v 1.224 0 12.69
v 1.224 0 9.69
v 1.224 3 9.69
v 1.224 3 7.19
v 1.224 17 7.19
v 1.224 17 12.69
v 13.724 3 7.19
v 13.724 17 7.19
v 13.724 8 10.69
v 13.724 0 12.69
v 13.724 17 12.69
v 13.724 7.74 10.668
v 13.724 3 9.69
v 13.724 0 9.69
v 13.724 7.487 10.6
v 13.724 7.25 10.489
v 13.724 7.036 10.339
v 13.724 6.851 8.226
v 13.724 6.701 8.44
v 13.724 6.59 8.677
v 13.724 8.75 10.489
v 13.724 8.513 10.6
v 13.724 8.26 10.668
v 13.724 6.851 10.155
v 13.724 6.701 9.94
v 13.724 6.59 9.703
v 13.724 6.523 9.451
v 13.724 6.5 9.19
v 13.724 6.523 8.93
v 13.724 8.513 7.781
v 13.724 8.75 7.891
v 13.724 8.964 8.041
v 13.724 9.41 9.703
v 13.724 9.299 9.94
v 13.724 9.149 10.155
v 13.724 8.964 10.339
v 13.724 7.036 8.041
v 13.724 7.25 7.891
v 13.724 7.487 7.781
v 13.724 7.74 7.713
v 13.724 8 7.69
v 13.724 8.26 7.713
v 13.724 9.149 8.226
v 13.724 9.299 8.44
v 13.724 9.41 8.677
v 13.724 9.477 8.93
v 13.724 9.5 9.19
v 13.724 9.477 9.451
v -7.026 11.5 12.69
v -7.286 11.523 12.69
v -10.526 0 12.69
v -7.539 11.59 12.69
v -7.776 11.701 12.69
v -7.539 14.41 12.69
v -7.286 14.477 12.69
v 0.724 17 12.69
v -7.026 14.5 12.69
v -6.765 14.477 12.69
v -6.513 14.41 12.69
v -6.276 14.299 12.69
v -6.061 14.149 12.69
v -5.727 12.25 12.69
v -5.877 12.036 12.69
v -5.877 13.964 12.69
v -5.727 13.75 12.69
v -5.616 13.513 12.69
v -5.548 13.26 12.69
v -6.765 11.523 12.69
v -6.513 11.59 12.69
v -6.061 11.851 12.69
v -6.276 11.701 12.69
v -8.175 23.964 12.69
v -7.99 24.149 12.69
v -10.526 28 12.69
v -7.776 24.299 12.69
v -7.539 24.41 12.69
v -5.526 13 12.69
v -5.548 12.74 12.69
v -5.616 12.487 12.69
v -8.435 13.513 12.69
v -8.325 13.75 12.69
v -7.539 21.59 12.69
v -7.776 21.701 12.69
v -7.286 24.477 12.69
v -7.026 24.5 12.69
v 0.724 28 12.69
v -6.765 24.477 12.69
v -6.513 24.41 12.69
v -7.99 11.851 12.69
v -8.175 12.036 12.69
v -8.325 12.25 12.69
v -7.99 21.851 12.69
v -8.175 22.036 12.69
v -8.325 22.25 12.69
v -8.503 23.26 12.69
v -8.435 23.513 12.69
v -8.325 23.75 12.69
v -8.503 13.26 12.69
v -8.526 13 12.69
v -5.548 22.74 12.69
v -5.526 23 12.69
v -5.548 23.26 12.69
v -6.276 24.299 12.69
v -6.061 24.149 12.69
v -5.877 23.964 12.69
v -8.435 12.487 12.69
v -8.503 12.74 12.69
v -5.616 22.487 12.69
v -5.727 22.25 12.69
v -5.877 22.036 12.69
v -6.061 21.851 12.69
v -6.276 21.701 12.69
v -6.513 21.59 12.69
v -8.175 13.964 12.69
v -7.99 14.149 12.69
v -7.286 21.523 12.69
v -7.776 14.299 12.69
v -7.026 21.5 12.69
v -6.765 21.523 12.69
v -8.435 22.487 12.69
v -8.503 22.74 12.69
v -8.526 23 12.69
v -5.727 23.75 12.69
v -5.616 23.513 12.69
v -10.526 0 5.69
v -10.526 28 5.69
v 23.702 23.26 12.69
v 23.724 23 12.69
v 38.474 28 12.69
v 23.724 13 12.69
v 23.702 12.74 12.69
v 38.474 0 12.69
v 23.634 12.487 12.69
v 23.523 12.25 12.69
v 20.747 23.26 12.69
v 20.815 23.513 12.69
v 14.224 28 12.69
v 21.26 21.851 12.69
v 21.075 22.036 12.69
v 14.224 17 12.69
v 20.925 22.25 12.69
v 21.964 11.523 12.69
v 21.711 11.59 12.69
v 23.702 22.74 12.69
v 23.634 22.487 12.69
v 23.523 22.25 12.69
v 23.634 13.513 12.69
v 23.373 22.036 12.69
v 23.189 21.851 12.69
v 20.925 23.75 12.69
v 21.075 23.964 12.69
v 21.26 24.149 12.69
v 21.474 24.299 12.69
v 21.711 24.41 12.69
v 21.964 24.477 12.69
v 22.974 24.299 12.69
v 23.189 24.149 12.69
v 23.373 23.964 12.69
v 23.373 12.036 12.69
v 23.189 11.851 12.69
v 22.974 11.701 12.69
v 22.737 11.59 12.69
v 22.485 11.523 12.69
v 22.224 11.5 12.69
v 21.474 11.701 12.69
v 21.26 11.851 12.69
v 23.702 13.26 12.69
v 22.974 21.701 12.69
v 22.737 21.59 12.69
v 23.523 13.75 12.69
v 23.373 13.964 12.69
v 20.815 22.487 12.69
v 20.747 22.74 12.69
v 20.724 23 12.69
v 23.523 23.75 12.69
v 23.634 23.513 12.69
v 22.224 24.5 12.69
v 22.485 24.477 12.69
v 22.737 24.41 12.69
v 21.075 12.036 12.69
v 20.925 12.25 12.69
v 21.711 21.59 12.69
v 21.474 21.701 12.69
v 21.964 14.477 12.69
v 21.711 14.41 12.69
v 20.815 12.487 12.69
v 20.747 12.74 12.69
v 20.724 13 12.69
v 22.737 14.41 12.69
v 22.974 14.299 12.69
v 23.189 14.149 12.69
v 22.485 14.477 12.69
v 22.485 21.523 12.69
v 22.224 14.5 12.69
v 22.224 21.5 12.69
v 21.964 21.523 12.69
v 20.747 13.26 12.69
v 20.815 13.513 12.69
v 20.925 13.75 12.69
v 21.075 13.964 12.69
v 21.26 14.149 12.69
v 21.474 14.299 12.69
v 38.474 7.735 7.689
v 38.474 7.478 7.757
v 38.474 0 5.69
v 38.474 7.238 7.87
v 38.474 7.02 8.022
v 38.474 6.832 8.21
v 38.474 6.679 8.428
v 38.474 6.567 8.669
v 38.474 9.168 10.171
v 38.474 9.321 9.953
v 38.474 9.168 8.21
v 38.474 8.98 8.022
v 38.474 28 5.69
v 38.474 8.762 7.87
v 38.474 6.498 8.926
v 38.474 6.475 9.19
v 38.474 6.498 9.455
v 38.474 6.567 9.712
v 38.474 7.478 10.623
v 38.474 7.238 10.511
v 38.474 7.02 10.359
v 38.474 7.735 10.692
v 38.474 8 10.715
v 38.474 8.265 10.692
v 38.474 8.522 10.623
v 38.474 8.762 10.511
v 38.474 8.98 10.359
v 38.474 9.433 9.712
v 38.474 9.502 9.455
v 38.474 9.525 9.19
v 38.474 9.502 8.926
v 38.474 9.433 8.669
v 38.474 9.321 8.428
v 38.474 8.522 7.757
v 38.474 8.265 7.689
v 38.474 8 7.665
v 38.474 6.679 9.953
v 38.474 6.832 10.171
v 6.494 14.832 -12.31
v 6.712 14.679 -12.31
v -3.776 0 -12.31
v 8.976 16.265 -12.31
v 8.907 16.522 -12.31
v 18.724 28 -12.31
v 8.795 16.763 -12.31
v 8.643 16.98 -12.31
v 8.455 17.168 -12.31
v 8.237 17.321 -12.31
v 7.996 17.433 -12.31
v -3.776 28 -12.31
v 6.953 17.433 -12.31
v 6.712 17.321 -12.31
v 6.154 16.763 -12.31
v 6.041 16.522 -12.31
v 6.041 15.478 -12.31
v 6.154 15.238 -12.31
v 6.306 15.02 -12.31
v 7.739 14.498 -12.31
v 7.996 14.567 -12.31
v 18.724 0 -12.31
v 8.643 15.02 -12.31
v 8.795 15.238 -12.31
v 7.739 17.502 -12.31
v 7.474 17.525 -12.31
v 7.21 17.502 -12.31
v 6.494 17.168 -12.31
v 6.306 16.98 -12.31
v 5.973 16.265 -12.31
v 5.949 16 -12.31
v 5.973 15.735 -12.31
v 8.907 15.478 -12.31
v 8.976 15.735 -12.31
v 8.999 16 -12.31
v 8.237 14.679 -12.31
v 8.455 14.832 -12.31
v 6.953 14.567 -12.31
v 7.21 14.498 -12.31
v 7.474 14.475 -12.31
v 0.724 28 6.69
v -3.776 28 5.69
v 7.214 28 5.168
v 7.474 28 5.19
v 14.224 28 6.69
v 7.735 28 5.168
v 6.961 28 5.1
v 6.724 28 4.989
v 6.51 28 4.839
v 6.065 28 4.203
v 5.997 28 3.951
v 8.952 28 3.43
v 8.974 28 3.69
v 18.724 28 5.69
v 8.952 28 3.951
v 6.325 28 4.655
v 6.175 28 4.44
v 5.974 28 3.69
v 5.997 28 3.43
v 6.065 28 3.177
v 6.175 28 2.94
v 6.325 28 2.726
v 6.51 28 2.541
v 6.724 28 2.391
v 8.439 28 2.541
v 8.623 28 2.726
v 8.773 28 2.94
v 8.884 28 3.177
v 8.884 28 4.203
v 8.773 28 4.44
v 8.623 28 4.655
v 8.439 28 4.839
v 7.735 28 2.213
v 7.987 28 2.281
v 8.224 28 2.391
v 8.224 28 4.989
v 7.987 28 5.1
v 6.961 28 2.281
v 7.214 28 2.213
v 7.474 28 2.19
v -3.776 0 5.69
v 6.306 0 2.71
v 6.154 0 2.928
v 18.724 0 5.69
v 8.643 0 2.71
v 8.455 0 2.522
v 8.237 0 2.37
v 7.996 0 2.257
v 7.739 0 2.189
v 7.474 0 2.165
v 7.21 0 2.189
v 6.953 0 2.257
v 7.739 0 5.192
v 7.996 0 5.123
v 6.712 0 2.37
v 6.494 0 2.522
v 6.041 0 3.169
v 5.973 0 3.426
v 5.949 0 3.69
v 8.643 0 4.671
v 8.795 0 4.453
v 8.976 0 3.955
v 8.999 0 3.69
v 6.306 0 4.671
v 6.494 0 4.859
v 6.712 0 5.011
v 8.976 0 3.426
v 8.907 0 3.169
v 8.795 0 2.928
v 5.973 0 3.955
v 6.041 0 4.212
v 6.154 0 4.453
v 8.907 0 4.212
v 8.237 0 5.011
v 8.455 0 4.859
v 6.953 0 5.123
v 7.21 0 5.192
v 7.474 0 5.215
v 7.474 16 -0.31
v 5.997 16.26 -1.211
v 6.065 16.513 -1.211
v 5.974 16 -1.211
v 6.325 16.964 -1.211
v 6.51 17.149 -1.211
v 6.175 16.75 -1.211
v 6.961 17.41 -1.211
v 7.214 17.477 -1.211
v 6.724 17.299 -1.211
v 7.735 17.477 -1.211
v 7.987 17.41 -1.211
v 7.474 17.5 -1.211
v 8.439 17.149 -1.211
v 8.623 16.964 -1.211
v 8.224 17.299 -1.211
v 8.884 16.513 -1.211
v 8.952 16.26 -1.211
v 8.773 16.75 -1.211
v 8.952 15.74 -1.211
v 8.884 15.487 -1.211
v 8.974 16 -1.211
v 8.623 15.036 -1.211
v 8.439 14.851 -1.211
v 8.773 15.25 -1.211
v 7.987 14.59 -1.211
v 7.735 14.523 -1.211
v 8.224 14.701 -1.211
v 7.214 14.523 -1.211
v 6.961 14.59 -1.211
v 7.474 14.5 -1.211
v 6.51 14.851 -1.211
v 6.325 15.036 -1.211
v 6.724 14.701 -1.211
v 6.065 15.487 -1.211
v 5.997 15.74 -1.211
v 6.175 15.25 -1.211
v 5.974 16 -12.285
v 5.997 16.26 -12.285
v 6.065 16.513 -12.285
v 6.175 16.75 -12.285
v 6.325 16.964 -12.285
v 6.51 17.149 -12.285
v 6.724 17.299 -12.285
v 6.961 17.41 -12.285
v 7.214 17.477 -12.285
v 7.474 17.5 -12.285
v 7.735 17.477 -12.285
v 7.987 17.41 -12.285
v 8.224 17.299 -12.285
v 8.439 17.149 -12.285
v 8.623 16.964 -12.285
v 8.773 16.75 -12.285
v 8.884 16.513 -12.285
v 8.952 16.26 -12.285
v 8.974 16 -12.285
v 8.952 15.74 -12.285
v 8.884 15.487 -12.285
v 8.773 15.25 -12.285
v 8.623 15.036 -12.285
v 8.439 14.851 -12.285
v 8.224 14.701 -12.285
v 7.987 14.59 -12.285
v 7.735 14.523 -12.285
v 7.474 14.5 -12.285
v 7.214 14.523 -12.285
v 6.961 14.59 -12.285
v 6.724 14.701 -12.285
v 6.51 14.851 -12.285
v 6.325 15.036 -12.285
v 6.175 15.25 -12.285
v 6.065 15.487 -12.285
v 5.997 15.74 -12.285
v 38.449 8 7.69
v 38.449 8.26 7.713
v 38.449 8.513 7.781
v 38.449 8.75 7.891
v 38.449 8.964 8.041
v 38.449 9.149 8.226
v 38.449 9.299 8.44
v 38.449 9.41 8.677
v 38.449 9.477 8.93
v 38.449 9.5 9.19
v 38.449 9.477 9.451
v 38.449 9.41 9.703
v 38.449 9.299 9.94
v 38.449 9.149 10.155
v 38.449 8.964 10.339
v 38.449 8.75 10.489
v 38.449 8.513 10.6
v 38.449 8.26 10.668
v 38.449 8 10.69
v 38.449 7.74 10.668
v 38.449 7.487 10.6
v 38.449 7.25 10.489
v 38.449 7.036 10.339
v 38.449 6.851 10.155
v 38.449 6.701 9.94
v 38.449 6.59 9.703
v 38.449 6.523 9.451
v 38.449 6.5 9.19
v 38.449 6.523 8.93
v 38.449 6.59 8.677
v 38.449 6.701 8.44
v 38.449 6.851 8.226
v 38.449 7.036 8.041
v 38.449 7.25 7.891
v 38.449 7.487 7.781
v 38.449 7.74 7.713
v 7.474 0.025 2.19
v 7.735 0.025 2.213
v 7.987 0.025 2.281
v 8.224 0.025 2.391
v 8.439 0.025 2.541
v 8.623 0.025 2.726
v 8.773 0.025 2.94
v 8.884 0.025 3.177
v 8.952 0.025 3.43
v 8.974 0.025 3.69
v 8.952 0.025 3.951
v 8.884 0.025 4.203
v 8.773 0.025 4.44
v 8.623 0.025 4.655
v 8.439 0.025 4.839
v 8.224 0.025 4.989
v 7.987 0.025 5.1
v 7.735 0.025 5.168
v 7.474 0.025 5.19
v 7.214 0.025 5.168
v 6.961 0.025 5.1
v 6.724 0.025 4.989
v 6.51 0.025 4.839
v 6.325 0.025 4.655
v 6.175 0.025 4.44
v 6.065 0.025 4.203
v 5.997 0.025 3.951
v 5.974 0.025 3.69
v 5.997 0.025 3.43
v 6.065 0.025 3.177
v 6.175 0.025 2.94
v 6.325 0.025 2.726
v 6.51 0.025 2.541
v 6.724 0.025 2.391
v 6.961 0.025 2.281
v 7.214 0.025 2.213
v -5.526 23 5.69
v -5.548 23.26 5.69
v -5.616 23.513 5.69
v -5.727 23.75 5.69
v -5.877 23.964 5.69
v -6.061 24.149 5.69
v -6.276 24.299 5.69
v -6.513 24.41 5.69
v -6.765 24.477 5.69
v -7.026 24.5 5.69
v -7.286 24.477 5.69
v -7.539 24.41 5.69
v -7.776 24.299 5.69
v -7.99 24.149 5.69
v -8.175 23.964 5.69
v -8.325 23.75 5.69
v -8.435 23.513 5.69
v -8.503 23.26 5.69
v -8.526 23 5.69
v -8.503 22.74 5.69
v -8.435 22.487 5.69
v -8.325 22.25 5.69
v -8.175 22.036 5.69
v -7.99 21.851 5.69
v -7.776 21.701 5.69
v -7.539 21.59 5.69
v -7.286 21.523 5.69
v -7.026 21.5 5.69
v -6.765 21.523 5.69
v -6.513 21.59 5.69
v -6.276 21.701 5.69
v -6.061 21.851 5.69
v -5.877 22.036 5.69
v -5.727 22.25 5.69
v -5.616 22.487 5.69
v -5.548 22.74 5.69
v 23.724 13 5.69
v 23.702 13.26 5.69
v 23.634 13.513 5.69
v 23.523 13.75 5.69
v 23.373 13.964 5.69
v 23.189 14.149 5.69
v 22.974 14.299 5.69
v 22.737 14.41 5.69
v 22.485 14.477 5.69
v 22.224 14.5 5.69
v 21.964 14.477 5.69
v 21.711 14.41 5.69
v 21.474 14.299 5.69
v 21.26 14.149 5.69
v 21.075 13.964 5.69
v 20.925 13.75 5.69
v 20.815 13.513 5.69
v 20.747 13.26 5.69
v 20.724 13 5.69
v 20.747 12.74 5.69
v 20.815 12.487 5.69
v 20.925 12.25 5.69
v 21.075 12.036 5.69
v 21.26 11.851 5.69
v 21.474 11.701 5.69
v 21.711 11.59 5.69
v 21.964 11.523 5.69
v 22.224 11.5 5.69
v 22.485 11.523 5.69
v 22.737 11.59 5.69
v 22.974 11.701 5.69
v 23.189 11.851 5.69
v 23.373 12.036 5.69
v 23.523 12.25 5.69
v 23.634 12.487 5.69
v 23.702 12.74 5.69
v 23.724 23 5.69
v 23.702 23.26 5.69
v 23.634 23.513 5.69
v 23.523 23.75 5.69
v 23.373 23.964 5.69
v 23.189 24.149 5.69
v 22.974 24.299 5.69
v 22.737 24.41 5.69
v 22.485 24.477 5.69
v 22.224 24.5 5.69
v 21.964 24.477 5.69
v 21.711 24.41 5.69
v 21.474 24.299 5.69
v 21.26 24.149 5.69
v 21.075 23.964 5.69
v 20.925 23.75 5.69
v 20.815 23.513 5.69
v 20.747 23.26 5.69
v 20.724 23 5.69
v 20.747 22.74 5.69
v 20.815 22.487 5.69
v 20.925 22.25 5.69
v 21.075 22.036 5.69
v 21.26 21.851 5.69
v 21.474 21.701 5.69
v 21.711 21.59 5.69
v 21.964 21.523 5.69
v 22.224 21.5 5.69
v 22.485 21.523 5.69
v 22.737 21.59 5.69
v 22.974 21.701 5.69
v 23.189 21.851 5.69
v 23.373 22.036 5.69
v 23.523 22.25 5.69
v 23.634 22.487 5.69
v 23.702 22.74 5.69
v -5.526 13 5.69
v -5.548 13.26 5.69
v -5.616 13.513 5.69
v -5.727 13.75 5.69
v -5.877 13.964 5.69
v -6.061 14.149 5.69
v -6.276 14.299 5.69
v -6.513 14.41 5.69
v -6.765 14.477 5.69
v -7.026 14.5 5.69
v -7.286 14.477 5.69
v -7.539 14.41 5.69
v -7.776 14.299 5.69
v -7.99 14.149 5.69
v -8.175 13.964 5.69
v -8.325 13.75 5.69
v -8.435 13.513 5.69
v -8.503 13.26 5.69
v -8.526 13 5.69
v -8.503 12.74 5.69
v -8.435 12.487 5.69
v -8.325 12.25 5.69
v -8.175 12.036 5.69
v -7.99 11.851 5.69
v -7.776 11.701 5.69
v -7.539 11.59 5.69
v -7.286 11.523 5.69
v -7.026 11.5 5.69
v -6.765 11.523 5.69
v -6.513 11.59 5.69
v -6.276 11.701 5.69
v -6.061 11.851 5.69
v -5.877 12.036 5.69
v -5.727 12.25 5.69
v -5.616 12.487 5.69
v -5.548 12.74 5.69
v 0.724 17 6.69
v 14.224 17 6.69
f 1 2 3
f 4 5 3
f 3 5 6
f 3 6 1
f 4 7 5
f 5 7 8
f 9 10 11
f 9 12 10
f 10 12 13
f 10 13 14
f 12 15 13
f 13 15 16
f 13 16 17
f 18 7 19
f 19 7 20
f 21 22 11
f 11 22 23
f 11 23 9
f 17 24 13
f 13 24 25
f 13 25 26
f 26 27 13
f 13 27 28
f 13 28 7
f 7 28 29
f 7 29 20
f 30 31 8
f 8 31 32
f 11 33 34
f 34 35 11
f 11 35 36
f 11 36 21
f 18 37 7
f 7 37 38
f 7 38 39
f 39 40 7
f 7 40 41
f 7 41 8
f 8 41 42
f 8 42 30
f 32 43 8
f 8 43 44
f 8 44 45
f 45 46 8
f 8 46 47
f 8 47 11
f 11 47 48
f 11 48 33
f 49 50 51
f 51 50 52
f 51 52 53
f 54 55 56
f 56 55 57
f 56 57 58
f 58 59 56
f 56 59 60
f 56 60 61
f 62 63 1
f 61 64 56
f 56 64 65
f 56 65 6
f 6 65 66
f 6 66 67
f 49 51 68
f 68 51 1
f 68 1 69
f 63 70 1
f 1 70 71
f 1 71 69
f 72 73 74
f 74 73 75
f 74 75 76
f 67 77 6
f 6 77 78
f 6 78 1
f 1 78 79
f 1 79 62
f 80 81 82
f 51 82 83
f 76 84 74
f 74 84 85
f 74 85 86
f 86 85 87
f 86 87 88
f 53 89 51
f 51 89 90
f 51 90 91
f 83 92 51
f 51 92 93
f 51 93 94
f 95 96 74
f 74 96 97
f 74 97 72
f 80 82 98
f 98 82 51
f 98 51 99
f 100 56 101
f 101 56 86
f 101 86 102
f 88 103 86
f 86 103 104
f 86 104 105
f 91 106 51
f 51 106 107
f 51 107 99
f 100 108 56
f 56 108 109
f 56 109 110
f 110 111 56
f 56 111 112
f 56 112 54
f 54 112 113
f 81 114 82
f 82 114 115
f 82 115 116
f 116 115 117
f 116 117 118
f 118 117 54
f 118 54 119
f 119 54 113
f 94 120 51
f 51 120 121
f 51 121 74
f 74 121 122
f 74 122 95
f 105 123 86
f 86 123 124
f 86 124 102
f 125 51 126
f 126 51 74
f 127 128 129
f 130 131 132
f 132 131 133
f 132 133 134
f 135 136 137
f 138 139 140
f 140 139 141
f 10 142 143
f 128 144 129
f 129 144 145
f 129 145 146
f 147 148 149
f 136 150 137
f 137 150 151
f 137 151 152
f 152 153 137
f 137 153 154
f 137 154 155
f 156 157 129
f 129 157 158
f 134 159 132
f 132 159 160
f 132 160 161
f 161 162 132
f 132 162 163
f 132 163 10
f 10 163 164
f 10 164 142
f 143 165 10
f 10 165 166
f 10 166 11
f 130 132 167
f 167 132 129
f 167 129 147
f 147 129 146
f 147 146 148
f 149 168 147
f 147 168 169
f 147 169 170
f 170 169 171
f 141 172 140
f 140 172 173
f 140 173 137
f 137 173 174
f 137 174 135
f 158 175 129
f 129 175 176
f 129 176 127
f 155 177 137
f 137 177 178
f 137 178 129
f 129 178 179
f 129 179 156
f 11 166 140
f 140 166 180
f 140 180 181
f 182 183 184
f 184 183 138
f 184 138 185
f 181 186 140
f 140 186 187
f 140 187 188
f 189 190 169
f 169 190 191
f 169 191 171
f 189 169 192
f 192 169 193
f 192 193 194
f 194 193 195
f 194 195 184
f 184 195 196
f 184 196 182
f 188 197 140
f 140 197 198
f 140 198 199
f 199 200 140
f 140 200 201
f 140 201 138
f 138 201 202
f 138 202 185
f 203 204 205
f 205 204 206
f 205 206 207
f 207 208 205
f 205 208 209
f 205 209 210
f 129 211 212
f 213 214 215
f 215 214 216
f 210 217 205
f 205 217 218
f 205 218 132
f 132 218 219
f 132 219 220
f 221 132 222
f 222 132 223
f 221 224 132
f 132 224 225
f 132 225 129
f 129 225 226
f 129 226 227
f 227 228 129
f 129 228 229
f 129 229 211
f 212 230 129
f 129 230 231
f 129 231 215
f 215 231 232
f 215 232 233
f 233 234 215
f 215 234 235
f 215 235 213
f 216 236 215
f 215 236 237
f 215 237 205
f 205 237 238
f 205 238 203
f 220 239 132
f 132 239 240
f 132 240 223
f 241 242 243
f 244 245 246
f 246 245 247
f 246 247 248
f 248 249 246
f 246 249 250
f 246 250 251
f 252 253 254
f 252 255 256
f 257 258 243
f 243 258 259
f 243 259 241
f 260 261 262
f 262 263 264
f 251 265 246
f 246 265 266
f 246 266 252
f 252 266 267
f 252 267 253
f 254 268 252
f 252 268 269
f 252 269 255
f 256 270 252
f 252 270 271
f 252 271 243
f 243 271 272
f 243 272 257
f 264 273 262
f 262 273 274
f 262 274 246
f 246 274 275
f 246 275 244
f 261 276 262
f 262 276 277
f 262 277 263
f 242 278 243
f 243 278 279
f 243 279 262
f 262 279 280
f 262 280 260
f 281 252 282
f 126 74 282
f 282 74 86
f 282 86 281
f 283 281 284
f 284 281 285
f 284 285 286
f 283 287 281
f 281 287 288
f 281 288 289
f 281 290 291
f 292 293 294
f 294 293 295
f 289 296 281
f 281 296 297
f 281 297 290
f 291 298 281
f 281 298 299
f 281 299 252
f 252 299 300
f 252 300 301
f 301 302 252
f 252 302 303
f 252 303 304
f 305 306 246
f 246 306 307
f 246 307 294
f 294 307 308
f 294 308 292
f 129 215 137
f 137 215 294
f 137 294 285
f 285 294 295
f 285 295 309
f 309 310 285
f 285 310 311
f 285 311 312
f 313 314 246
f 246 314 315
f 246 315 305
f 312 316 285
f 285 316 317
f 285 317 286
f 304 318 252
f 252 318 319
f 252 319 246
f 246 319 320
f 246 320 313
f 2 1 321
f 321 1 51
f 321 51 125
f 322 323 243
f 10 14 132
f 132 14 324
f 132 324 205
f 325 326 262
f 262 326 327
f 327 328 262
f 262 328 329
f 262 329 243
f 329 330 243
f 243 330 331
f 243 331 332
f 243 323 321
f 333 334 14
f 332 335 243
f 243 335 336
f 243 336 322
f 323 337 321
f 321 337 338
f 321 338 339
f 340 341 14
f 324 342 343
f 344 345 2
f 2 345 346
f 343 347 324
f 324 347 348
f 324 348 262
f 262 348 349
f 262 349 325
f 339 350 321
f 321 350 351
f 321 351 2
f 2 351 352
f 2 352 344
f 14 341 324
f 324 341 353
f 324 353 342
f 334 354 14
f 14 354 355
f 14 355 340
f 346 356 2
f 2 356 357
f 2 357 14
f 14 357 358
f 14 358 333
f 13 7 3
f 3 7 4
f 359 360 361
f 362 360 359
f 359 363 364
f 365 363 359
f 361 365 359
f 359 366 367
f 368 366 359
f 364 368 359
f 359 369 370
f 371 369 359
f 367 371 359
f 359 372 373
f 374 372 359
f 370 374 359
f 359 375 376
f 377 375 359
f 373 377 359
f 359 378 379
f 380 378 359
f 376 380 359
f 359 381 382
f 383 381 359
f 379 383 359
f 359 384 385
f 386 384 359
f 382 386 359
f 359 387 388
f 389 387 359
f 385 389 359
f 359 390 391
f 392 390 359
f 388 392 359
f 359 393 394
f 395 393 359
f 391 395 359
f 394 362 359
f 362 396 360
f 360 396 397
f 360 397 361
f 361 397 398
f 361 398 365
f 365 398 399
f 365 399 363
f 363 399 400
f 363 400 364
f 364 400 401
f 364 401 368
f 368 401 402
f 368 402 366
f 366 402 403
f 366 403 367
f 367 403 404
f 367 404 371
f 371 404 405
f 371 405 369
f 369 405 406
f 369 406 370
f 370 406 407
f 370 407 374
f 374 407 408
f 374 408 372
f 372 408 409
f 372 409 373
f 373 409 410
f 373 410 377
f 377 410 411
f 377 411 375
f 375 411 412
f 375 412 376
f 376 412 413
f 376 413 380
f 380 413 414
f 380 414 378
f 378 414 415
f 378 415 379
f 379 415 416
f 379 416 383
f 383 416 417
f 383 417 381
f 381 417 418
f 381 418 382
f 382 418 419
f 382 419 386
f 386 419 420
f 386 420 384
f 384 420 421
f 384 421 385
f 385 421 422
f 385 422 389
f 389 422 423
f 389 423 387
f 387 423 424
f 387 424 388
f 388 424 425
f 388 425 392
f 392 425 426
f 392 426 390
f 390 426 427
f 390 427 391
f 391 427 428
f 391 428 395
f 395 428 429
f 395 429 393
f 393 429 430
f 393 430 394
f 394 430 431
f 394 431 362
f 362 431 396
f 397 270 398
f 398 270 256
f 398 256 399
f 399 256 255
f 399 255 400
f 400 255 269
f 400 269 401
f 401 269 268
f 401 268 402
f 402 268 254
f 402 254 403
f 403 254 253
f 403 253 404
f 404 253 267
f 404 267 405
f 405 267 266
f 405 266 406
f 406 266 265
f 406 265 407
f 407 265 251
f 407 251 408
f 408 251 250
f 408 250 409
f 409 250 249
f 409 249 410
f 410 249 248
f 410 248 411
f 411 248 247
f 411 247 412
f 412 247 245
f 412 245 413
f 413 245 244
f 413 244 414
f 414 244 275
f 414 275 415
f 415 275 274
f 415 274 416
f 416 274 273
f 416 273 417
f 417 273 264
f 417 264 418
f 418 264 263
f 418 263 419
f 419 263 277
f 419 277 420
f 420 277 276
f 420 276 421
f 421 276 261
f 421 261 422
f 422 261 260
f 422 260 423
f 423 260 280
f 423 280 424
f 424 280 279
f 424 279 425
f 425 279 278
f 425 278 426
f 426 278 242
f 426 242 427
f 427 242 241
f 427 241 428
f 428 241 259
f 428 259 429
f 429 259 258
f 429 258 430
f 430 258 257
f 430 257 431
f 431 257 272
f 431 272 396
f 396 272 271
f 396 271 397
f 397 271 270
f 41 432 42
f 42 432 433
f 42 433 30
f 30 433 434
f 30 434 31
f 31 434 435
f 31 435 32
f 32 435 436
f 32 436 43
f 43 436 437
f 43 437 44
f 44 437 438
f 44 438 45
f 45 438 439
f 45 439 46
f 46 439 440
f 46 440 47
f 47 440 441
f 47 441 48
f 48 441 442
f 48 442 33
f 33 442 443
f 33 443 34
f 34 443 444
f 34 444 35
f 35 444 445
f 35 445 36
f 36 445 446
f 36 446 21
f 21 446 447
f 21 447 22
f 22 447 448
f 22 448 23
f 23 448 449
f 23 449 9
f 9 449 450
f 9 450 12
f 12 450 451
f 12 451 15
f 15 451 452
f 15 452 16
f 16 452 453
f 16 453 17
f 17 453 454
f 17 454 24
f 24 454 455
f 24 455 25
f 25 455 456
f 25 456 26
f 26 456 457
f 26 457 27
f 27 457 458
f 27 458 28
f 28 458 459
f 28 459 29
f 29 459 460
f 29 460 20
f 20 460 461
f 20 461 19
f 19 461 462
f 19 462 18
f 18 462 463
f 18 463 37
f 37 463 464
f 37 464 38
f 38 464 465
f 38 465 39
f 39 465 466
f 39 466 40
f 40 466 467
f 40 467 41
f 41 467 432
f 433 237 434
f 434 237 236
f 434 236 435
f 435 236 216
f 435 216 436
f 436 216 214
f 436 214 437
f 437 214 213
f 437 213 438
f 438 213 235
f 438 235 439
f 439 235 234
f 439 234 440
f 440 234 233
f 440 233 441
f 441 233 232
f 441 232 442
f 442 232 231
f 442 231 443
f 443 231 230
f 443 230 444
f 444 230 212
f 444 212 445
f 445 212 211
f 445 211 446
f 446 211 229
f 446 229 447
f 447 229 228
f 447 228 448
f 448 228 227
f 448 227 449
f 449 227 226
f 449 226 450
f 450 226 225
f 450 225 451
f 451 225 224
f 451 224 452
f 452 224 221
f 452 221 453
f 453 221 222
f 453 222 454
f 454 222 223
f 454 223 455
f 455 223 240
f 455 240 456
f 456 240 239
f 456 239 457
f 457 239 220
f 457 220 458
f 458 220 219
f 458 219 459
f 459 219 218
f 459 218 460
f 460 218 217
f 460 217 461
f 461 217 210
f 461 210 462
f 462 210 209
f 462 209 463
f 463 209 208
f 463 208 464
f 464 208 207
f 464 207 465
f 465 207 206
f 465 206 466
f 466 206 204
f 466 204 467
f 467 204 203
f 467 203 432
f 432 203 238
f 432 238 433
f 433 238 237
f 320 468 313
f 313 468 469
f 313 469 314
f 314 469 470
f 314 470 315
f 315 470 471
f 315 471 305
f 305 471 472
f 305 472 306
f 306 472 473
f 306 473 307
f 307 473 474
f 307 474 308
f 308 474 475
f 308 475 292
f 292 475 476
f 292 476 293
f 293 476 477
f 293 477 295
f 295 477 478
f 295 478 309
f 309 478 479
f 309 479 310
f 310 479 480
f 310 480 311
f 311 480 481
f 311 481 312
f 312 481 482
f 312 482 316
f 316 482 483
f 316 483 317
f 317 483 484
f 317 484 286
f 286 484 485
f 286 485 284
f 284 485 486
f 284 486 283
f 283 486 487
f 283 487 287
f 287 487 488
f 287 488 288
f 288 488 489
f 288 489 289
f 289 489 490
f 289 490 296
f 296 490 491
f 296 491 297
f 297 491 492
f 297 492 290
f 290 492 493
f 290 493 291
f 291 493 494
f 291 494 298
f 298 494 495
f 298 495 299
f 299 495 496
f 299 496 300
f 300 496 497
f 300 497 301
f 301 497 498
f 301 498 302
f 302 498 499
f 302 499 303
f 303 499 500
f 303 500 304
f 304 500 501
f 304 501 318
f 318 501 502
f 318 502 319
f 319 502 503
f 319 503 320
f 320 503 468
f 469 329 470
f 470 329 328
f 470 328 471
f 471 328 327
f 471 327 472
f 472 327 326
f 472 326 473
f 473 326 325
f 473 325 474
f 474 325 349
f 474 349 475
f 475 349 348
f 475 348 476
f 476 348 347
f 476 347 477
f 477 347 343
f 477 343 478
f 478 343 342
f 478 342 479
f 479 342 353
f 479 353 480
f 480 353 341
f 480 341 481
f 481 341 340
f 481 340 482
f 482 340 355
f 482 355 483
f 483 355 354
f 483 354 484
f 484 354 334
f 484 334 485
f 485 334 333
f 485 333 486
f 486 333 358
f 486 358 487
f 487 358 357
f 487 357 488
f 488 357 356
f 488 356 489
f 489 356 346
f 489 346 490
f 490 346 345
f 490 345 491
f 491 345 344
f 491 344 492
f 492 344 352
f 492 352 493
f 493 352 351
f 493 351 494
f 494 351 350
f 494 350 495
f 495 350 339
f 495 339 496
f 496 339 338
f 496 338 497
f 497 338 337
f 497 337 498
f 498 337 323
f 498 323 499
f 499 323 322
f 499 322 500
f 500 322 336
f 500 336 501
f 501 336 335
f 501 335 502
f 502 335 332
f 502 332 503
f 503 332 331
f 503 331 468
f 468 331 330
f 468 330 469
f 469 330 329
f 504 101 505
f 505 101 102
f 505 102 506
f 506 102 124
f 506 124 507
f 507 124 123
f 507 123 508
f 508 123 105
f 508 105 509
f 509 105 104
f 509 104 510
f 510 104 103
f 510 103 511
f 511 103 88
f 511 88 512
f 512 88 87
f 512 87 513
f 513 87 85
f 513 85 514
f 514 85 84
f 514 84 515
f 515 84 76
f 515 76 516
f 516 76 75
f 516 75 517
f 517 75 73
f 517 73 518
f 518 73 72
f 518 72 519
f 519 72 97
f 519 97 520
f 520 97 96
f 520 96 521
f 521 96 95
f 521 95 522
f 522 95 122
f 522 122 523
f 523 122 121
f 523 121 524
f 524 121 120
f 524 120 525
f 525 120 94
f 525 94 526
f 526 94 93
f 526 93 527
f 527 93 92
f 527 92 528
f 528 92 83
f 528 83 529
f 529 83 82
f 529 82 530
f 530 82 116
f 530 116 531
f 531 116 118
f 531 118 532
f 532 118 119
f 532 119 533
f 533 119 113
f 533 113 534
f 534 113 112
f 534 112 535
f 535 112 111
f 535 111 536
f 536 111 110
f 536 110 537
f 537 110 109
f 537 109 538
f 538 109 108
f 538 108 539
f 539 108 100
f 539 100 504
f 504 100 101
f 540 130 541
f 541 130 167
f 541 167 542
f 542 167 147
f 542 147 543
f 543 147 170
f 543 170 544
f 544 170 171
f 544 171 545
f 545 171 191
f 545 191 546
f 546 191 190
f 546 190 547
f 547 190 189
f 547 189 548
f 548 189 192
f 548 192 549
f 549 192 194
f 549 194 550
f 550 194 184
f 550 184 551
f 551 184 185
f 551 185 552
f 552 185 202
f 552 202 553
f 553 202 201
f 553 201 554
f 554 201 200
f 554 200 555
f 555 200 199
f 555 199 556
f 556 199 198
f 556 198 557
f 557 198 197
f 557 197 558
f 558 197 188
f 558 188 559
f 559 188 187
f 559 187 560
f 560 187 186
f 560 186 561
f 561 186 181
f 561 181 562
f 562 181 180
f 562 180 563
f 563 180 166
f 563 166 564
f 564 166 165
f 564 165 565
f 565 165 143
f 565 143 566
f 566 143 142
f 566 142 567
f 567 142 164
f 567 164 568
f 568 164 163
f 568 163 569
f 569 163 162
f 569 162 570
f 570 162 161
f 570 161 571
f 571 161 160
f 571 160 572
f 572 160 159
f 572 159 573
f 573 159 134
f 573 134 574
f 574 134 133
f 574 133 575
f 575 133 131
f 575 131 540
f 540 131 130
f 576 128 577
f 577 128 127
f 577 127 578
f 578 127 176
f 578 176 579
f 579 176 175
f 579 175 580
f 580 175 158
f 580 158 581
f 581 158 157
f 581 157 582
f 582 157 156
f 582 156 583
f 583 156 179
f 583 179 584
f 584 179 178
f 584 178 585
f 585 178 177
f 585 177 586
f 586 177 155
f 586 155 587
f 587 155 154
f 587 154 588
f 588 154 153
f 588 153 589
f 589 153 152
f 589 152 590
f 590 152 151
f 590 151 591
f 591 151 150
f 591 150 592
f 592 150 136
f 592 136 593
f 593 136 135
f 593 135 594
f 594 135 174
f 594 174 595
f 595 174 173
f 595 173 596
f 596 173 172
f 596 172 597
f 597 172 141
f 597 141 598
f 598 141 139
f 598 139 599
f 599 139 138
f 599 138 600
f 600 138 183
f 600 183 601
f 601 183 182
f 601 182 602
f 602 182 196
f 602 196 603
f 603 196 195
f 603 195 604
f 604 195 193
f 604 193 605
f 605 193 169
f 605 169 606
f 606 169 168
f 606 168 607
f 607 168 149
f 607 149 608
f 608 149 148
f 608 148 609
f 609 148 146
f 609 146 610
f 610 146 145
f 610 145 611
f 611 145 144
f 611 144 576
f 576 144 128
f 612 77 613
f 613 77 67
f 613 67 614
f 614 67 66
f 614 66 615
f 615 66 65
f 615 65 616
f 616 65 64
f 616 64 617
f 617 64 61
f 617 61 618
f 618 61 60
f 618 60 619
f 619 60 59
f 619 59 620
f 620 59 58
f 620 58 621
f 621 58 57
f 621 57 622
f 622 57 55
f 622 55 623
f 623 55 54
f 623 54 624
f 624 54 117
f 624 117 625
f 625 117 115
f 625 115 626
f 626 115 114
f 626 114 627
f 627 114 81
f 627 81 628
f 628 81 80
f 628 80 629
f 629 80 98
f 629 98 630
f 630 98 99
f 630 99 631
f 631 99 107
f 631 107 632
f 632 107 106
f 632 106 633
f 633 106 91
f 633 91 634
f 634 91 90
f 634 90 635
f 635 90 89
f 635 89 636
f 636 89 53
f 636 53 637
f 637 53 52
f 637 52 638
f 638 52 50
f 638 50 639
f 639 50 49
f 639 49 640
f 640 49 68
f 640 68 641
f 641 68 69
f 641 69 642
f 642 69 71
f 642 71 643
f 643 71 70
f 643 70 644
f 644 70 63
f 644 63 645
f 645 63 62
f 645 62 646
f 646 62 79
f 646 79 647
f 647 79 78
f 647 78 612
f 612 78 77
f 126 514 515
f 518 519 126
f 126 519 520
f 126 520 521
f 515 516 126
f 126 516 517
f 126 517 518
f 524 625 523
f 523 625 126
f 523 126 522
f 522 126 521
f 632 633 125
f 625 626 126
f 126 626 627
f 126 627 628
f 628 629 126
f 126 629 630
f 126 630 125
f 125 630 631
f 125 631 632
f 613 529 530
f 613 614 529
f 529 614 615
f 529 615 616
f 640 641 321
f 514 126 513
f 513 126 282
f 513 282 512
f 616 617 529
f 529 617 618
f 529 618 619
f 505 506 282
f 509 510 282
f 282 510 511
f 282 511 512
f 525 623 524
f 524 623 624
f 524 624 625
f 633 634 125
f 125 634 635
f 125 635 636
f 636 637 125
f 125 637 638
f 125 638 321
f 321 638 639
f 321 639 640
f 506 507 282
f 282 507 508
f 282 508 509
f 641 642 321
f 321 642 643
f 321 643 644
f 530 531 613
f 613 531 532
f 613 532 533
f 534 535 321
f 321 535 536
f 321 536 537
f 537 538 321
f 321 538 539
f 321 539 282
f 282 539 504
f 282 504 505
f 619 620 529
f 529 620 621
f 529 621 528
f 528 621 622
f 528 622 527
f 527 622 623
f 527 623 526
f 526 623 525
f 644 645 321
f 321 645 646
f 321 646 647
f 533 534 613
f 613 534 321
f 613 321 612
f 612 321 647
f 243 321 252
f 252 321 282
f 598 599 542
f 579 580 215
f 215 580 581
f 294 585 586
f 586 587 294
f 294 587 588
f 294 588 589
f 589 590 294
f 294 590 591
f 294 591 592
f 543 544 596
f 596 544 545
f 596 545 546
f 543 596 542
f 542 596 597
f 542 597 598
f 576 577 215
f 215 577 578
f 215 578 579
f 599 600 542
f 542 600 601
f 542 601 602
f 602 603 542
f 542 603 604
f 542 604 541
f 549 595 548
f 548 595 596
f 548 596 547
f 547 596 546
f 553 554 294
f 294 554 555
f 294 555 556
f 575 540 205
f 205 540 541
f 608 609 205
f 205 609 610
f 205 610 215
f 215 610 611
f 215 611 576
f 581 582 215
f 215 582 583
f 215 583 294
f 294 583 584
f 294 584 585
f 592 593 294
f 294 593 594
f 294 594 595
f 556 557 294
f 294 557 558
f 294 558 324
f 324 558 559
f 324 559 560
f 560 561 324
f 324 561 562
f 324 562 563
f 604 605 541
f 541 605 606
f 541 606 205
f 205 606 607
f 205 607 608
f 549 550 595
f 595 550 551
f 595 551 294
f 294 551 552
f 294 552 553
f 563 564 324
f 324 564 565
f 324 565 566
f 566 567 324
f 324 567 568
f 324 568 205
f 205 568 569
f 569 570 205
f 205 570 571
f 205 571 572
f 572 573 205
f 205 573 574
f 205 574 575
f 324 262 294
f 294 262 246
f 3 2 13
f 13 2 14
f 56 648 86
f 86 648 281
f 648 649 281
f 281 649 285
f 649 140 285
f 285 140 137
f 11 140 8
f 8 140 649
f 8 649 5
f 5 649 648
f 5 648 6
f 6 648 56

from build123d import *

# Parameters (mm, degrees)
SKETCH1_W                       = 49
SKETCH1_H                       = 25
BOSS_EXTRUDE1_DEPTH             = 28
SKETCH2_W                       = 12.5
SKETCH2_H                       = 5.5
CUT_EXTRUDE1_DEPTH              = 25
F_3_0MM_DOWEL_HOLE1_D           = 3
F_3_0MM_DOWEL_HOLE1_DEPTH       = 11.098709071
F_3_0MM_DOWEL_HOLE1_CSINK_D     = 3.05
F_3_0MM_DOWEL_HOLE1_CSINK_ANGLE = 90
F_3_0MM_DOWEL_HOLE1_TIP         = 0.901290929
F_3_0MM_DOWEL_HOLE2_D           = 3
F_3_0MM_DOWEL_HOLE2_DEPTH       = 24.75
F_3_0MM_DOWEL_HOLE2_CSINK_D     = 3.05
F_3_0MM_DOWEL_HOLE2_CSINK_ANGLE = 90
F_3_0MM_DOWEL_HOLE3_D           = 3
F_3_0MM_DOWEL_HOLE3_CSINK_D     = 3.05
F_3_0MM_DOWEL_HOLE3_CSINK_ANGLE = 90
SKETCH13_R                      = 1.5
CUT_EXTRUDE2_DEPTH              = 12
SKETCH14_W                      = 6.75
SKETCH14_H                      = 18
SKETCH14_W_2                    = 19.75
CUT_EXTRUDE3_DEPTH              = 28
SKETCH15_W                      = 12.5
SKETCH15_H                      = 3
CUT_EXTRUDE4_DEPTH              = 10
CUT_EXTRUDE5_DEPTH              = 11


with BuildPart() as part:
    # Sketch1 → Boss-Extrude1 (new body)
    with BuildSketch(Plane(origin=(0, 0, 0), x_dir=(1, 0, 0), z_dir=(0, 1, 0))):
        with Locations((13.974428044, -0.190405904)):
            Rectangle(SKETCH1_W, SKETCH1_H)
    extrude(amount=BOSS_EXTRUDE1_DEPTH)

    # Sketch2 → Cut-Extrude1 (cut)
    with BuildSketch(Plane(origin=(0, 28, 0), x_dir=(1, 0, 0), z_dir=(0, 1, 0))):
        with Locations((7.474428044, -9.940405904)):
            Rectangle(SKETCH2_W, SKETCH2_H)
    extrude(amount=-CUT_EXTRUDE1_DEPTH, mode=Mode.SUBTRACT)

    # Ø3.0mm Dowel Hole1
    with Locations(Plane(origin=(0, 0, -12.309594096), x_dir=(-1, 0, 0), z_dir=(0, 0, -1))):
        with Locations((-7.474428044, 16)):
            CounterSinkHole(F_3_0MM_DOWEL_HOLE1_D / 2, F_3_0MM_DOWEL_HOLE1_CSINK_D / 2, depth=F_3_0MM_DOWEL_HOLE1_DEPTH, counter_sink_angle=F_3_0MM_DOWEL_HOLE1_CSINK_ANGLE)
            with Locations((0, 0, -(F_3_0MM_DOWEL_HOLE1_DEPTH + F_3_0MM_DOWEL_HOLE1_TIP / 2))):  # 118° drill point
                Cone(0, F_3_0MM_DOWEL_HOLE1_D / 2, F_3_0MM_DOWEL_HOLE1_TIP, mode=Mode.SUBTRACT)

    # Ø3.0mm Dowel Hole2
    with Locations(Plane(origin=(38.474428044, 0, 0), x_dir=(0, 0, -1), z_dir=(1, 0, 0))):
        with Locations((-9.190405904, 8)):
            CounterSinkHole(F_3_0MM_DOWEL_HOLE2_D / 2, F_3_0MM_DOWEL_HOLE2_CSINK_D / 2, depth=F_3_0MM_DOWEL_HOLE2_DEPTH, counter_sink_angle=F_3_0MM_DOWEL_HOLE2_CSINK_ANGLE)

    # Ø3.0mm Dowel Hole3 (through all)
    with Locations(Plane(origin=(0, 0, 0), x_dir=(-1, 0, 0), z_dir=(0, -1, 0))):
        with Locations((-7.474428044, -3.690405904)):
            CounterSinkHole(F_3_0MM_DOWEL_HOLE3_D / 2, F_3_0MM_DOWEL_HOLE3_CSINK_D / 2, counter_sink_angle=F_3_0MM_DOWEL_HOLE3_CSINK_ANGLE)

    # Sketch13 → Cut-Extrude2 (cut)
    with BuildSketch(Plane.XY.offset(12.690405904)):
        with Locations((-7.025571956, 23)):
            Circle(SKETCH13_R)
        with Locations((-7.025571956, 13)):
            Circle(SKETCH13_R)
        with Locations((22.224428044, 23)):
            Circle(SKETCH13_R)
        with Locations((22.224428044, 13)):
            Circle(SKETCH13_R)
    extrude(amount=-CUT_EXTRUDE2_DEPTH, mode=Mode.SUBTRACT)

    # Sketch14 → Cut-Extrude3 (cut)
    with BuildSketch(Plane(origin=(0, 28, 0), x_dir=(1, 0, 0), z_dir=(0, 1, 0))):
        with Locations((-7.150571956, 3.309594096)):
            Rectangle(SKETCH14_W, SKETCH14_H)
        with Locations((28.599428044, 3.309594096)):
            Rectangle(SKETCH14_W_2, SKETCH14_H)
    extrude(amount=-CUT_EXTRUDE3_DEPTH, mode=Mode.SUBTRACT)

    # Sketch15 → Cut-Extrude4 (cut)
    with BuildSketch(Plane(origin=(0, 3, 0), x_dir=(1, 0, 0), z_dir=(0, 1, 0))):
        with Locations((7.474428044, -11.190405904)):
            Rectangle(SKETCH15_W, SKETCH15_H)
    extrude(amount=-CUT_EXTRUDE4_DEPTH, mode=Mode.SUBTRACT)

    # Sketch16 → Cut-Extrude5 (cut)
    with BuildSketch(Plane(origin=(0, 28, 0), x_dir=(1, 0, 0), z_dir=(0, 1, 0))):
        Polygon((14.224428044, -12.690405904), (14.224428044, -6.690405904), (0.724428044, -6.690405904), (0.724428044, -12.690405904), (1.224428044, -12.690405904), (1.224428044, -7.190405904), (13.724428044, -7.190405904), (13.724428044, -12.690405904), align=None)
    extrude(amount=-CUT_EXTRUDE5_DEPTH, mode=Mode.SUBTRACT)


solid = part.part
